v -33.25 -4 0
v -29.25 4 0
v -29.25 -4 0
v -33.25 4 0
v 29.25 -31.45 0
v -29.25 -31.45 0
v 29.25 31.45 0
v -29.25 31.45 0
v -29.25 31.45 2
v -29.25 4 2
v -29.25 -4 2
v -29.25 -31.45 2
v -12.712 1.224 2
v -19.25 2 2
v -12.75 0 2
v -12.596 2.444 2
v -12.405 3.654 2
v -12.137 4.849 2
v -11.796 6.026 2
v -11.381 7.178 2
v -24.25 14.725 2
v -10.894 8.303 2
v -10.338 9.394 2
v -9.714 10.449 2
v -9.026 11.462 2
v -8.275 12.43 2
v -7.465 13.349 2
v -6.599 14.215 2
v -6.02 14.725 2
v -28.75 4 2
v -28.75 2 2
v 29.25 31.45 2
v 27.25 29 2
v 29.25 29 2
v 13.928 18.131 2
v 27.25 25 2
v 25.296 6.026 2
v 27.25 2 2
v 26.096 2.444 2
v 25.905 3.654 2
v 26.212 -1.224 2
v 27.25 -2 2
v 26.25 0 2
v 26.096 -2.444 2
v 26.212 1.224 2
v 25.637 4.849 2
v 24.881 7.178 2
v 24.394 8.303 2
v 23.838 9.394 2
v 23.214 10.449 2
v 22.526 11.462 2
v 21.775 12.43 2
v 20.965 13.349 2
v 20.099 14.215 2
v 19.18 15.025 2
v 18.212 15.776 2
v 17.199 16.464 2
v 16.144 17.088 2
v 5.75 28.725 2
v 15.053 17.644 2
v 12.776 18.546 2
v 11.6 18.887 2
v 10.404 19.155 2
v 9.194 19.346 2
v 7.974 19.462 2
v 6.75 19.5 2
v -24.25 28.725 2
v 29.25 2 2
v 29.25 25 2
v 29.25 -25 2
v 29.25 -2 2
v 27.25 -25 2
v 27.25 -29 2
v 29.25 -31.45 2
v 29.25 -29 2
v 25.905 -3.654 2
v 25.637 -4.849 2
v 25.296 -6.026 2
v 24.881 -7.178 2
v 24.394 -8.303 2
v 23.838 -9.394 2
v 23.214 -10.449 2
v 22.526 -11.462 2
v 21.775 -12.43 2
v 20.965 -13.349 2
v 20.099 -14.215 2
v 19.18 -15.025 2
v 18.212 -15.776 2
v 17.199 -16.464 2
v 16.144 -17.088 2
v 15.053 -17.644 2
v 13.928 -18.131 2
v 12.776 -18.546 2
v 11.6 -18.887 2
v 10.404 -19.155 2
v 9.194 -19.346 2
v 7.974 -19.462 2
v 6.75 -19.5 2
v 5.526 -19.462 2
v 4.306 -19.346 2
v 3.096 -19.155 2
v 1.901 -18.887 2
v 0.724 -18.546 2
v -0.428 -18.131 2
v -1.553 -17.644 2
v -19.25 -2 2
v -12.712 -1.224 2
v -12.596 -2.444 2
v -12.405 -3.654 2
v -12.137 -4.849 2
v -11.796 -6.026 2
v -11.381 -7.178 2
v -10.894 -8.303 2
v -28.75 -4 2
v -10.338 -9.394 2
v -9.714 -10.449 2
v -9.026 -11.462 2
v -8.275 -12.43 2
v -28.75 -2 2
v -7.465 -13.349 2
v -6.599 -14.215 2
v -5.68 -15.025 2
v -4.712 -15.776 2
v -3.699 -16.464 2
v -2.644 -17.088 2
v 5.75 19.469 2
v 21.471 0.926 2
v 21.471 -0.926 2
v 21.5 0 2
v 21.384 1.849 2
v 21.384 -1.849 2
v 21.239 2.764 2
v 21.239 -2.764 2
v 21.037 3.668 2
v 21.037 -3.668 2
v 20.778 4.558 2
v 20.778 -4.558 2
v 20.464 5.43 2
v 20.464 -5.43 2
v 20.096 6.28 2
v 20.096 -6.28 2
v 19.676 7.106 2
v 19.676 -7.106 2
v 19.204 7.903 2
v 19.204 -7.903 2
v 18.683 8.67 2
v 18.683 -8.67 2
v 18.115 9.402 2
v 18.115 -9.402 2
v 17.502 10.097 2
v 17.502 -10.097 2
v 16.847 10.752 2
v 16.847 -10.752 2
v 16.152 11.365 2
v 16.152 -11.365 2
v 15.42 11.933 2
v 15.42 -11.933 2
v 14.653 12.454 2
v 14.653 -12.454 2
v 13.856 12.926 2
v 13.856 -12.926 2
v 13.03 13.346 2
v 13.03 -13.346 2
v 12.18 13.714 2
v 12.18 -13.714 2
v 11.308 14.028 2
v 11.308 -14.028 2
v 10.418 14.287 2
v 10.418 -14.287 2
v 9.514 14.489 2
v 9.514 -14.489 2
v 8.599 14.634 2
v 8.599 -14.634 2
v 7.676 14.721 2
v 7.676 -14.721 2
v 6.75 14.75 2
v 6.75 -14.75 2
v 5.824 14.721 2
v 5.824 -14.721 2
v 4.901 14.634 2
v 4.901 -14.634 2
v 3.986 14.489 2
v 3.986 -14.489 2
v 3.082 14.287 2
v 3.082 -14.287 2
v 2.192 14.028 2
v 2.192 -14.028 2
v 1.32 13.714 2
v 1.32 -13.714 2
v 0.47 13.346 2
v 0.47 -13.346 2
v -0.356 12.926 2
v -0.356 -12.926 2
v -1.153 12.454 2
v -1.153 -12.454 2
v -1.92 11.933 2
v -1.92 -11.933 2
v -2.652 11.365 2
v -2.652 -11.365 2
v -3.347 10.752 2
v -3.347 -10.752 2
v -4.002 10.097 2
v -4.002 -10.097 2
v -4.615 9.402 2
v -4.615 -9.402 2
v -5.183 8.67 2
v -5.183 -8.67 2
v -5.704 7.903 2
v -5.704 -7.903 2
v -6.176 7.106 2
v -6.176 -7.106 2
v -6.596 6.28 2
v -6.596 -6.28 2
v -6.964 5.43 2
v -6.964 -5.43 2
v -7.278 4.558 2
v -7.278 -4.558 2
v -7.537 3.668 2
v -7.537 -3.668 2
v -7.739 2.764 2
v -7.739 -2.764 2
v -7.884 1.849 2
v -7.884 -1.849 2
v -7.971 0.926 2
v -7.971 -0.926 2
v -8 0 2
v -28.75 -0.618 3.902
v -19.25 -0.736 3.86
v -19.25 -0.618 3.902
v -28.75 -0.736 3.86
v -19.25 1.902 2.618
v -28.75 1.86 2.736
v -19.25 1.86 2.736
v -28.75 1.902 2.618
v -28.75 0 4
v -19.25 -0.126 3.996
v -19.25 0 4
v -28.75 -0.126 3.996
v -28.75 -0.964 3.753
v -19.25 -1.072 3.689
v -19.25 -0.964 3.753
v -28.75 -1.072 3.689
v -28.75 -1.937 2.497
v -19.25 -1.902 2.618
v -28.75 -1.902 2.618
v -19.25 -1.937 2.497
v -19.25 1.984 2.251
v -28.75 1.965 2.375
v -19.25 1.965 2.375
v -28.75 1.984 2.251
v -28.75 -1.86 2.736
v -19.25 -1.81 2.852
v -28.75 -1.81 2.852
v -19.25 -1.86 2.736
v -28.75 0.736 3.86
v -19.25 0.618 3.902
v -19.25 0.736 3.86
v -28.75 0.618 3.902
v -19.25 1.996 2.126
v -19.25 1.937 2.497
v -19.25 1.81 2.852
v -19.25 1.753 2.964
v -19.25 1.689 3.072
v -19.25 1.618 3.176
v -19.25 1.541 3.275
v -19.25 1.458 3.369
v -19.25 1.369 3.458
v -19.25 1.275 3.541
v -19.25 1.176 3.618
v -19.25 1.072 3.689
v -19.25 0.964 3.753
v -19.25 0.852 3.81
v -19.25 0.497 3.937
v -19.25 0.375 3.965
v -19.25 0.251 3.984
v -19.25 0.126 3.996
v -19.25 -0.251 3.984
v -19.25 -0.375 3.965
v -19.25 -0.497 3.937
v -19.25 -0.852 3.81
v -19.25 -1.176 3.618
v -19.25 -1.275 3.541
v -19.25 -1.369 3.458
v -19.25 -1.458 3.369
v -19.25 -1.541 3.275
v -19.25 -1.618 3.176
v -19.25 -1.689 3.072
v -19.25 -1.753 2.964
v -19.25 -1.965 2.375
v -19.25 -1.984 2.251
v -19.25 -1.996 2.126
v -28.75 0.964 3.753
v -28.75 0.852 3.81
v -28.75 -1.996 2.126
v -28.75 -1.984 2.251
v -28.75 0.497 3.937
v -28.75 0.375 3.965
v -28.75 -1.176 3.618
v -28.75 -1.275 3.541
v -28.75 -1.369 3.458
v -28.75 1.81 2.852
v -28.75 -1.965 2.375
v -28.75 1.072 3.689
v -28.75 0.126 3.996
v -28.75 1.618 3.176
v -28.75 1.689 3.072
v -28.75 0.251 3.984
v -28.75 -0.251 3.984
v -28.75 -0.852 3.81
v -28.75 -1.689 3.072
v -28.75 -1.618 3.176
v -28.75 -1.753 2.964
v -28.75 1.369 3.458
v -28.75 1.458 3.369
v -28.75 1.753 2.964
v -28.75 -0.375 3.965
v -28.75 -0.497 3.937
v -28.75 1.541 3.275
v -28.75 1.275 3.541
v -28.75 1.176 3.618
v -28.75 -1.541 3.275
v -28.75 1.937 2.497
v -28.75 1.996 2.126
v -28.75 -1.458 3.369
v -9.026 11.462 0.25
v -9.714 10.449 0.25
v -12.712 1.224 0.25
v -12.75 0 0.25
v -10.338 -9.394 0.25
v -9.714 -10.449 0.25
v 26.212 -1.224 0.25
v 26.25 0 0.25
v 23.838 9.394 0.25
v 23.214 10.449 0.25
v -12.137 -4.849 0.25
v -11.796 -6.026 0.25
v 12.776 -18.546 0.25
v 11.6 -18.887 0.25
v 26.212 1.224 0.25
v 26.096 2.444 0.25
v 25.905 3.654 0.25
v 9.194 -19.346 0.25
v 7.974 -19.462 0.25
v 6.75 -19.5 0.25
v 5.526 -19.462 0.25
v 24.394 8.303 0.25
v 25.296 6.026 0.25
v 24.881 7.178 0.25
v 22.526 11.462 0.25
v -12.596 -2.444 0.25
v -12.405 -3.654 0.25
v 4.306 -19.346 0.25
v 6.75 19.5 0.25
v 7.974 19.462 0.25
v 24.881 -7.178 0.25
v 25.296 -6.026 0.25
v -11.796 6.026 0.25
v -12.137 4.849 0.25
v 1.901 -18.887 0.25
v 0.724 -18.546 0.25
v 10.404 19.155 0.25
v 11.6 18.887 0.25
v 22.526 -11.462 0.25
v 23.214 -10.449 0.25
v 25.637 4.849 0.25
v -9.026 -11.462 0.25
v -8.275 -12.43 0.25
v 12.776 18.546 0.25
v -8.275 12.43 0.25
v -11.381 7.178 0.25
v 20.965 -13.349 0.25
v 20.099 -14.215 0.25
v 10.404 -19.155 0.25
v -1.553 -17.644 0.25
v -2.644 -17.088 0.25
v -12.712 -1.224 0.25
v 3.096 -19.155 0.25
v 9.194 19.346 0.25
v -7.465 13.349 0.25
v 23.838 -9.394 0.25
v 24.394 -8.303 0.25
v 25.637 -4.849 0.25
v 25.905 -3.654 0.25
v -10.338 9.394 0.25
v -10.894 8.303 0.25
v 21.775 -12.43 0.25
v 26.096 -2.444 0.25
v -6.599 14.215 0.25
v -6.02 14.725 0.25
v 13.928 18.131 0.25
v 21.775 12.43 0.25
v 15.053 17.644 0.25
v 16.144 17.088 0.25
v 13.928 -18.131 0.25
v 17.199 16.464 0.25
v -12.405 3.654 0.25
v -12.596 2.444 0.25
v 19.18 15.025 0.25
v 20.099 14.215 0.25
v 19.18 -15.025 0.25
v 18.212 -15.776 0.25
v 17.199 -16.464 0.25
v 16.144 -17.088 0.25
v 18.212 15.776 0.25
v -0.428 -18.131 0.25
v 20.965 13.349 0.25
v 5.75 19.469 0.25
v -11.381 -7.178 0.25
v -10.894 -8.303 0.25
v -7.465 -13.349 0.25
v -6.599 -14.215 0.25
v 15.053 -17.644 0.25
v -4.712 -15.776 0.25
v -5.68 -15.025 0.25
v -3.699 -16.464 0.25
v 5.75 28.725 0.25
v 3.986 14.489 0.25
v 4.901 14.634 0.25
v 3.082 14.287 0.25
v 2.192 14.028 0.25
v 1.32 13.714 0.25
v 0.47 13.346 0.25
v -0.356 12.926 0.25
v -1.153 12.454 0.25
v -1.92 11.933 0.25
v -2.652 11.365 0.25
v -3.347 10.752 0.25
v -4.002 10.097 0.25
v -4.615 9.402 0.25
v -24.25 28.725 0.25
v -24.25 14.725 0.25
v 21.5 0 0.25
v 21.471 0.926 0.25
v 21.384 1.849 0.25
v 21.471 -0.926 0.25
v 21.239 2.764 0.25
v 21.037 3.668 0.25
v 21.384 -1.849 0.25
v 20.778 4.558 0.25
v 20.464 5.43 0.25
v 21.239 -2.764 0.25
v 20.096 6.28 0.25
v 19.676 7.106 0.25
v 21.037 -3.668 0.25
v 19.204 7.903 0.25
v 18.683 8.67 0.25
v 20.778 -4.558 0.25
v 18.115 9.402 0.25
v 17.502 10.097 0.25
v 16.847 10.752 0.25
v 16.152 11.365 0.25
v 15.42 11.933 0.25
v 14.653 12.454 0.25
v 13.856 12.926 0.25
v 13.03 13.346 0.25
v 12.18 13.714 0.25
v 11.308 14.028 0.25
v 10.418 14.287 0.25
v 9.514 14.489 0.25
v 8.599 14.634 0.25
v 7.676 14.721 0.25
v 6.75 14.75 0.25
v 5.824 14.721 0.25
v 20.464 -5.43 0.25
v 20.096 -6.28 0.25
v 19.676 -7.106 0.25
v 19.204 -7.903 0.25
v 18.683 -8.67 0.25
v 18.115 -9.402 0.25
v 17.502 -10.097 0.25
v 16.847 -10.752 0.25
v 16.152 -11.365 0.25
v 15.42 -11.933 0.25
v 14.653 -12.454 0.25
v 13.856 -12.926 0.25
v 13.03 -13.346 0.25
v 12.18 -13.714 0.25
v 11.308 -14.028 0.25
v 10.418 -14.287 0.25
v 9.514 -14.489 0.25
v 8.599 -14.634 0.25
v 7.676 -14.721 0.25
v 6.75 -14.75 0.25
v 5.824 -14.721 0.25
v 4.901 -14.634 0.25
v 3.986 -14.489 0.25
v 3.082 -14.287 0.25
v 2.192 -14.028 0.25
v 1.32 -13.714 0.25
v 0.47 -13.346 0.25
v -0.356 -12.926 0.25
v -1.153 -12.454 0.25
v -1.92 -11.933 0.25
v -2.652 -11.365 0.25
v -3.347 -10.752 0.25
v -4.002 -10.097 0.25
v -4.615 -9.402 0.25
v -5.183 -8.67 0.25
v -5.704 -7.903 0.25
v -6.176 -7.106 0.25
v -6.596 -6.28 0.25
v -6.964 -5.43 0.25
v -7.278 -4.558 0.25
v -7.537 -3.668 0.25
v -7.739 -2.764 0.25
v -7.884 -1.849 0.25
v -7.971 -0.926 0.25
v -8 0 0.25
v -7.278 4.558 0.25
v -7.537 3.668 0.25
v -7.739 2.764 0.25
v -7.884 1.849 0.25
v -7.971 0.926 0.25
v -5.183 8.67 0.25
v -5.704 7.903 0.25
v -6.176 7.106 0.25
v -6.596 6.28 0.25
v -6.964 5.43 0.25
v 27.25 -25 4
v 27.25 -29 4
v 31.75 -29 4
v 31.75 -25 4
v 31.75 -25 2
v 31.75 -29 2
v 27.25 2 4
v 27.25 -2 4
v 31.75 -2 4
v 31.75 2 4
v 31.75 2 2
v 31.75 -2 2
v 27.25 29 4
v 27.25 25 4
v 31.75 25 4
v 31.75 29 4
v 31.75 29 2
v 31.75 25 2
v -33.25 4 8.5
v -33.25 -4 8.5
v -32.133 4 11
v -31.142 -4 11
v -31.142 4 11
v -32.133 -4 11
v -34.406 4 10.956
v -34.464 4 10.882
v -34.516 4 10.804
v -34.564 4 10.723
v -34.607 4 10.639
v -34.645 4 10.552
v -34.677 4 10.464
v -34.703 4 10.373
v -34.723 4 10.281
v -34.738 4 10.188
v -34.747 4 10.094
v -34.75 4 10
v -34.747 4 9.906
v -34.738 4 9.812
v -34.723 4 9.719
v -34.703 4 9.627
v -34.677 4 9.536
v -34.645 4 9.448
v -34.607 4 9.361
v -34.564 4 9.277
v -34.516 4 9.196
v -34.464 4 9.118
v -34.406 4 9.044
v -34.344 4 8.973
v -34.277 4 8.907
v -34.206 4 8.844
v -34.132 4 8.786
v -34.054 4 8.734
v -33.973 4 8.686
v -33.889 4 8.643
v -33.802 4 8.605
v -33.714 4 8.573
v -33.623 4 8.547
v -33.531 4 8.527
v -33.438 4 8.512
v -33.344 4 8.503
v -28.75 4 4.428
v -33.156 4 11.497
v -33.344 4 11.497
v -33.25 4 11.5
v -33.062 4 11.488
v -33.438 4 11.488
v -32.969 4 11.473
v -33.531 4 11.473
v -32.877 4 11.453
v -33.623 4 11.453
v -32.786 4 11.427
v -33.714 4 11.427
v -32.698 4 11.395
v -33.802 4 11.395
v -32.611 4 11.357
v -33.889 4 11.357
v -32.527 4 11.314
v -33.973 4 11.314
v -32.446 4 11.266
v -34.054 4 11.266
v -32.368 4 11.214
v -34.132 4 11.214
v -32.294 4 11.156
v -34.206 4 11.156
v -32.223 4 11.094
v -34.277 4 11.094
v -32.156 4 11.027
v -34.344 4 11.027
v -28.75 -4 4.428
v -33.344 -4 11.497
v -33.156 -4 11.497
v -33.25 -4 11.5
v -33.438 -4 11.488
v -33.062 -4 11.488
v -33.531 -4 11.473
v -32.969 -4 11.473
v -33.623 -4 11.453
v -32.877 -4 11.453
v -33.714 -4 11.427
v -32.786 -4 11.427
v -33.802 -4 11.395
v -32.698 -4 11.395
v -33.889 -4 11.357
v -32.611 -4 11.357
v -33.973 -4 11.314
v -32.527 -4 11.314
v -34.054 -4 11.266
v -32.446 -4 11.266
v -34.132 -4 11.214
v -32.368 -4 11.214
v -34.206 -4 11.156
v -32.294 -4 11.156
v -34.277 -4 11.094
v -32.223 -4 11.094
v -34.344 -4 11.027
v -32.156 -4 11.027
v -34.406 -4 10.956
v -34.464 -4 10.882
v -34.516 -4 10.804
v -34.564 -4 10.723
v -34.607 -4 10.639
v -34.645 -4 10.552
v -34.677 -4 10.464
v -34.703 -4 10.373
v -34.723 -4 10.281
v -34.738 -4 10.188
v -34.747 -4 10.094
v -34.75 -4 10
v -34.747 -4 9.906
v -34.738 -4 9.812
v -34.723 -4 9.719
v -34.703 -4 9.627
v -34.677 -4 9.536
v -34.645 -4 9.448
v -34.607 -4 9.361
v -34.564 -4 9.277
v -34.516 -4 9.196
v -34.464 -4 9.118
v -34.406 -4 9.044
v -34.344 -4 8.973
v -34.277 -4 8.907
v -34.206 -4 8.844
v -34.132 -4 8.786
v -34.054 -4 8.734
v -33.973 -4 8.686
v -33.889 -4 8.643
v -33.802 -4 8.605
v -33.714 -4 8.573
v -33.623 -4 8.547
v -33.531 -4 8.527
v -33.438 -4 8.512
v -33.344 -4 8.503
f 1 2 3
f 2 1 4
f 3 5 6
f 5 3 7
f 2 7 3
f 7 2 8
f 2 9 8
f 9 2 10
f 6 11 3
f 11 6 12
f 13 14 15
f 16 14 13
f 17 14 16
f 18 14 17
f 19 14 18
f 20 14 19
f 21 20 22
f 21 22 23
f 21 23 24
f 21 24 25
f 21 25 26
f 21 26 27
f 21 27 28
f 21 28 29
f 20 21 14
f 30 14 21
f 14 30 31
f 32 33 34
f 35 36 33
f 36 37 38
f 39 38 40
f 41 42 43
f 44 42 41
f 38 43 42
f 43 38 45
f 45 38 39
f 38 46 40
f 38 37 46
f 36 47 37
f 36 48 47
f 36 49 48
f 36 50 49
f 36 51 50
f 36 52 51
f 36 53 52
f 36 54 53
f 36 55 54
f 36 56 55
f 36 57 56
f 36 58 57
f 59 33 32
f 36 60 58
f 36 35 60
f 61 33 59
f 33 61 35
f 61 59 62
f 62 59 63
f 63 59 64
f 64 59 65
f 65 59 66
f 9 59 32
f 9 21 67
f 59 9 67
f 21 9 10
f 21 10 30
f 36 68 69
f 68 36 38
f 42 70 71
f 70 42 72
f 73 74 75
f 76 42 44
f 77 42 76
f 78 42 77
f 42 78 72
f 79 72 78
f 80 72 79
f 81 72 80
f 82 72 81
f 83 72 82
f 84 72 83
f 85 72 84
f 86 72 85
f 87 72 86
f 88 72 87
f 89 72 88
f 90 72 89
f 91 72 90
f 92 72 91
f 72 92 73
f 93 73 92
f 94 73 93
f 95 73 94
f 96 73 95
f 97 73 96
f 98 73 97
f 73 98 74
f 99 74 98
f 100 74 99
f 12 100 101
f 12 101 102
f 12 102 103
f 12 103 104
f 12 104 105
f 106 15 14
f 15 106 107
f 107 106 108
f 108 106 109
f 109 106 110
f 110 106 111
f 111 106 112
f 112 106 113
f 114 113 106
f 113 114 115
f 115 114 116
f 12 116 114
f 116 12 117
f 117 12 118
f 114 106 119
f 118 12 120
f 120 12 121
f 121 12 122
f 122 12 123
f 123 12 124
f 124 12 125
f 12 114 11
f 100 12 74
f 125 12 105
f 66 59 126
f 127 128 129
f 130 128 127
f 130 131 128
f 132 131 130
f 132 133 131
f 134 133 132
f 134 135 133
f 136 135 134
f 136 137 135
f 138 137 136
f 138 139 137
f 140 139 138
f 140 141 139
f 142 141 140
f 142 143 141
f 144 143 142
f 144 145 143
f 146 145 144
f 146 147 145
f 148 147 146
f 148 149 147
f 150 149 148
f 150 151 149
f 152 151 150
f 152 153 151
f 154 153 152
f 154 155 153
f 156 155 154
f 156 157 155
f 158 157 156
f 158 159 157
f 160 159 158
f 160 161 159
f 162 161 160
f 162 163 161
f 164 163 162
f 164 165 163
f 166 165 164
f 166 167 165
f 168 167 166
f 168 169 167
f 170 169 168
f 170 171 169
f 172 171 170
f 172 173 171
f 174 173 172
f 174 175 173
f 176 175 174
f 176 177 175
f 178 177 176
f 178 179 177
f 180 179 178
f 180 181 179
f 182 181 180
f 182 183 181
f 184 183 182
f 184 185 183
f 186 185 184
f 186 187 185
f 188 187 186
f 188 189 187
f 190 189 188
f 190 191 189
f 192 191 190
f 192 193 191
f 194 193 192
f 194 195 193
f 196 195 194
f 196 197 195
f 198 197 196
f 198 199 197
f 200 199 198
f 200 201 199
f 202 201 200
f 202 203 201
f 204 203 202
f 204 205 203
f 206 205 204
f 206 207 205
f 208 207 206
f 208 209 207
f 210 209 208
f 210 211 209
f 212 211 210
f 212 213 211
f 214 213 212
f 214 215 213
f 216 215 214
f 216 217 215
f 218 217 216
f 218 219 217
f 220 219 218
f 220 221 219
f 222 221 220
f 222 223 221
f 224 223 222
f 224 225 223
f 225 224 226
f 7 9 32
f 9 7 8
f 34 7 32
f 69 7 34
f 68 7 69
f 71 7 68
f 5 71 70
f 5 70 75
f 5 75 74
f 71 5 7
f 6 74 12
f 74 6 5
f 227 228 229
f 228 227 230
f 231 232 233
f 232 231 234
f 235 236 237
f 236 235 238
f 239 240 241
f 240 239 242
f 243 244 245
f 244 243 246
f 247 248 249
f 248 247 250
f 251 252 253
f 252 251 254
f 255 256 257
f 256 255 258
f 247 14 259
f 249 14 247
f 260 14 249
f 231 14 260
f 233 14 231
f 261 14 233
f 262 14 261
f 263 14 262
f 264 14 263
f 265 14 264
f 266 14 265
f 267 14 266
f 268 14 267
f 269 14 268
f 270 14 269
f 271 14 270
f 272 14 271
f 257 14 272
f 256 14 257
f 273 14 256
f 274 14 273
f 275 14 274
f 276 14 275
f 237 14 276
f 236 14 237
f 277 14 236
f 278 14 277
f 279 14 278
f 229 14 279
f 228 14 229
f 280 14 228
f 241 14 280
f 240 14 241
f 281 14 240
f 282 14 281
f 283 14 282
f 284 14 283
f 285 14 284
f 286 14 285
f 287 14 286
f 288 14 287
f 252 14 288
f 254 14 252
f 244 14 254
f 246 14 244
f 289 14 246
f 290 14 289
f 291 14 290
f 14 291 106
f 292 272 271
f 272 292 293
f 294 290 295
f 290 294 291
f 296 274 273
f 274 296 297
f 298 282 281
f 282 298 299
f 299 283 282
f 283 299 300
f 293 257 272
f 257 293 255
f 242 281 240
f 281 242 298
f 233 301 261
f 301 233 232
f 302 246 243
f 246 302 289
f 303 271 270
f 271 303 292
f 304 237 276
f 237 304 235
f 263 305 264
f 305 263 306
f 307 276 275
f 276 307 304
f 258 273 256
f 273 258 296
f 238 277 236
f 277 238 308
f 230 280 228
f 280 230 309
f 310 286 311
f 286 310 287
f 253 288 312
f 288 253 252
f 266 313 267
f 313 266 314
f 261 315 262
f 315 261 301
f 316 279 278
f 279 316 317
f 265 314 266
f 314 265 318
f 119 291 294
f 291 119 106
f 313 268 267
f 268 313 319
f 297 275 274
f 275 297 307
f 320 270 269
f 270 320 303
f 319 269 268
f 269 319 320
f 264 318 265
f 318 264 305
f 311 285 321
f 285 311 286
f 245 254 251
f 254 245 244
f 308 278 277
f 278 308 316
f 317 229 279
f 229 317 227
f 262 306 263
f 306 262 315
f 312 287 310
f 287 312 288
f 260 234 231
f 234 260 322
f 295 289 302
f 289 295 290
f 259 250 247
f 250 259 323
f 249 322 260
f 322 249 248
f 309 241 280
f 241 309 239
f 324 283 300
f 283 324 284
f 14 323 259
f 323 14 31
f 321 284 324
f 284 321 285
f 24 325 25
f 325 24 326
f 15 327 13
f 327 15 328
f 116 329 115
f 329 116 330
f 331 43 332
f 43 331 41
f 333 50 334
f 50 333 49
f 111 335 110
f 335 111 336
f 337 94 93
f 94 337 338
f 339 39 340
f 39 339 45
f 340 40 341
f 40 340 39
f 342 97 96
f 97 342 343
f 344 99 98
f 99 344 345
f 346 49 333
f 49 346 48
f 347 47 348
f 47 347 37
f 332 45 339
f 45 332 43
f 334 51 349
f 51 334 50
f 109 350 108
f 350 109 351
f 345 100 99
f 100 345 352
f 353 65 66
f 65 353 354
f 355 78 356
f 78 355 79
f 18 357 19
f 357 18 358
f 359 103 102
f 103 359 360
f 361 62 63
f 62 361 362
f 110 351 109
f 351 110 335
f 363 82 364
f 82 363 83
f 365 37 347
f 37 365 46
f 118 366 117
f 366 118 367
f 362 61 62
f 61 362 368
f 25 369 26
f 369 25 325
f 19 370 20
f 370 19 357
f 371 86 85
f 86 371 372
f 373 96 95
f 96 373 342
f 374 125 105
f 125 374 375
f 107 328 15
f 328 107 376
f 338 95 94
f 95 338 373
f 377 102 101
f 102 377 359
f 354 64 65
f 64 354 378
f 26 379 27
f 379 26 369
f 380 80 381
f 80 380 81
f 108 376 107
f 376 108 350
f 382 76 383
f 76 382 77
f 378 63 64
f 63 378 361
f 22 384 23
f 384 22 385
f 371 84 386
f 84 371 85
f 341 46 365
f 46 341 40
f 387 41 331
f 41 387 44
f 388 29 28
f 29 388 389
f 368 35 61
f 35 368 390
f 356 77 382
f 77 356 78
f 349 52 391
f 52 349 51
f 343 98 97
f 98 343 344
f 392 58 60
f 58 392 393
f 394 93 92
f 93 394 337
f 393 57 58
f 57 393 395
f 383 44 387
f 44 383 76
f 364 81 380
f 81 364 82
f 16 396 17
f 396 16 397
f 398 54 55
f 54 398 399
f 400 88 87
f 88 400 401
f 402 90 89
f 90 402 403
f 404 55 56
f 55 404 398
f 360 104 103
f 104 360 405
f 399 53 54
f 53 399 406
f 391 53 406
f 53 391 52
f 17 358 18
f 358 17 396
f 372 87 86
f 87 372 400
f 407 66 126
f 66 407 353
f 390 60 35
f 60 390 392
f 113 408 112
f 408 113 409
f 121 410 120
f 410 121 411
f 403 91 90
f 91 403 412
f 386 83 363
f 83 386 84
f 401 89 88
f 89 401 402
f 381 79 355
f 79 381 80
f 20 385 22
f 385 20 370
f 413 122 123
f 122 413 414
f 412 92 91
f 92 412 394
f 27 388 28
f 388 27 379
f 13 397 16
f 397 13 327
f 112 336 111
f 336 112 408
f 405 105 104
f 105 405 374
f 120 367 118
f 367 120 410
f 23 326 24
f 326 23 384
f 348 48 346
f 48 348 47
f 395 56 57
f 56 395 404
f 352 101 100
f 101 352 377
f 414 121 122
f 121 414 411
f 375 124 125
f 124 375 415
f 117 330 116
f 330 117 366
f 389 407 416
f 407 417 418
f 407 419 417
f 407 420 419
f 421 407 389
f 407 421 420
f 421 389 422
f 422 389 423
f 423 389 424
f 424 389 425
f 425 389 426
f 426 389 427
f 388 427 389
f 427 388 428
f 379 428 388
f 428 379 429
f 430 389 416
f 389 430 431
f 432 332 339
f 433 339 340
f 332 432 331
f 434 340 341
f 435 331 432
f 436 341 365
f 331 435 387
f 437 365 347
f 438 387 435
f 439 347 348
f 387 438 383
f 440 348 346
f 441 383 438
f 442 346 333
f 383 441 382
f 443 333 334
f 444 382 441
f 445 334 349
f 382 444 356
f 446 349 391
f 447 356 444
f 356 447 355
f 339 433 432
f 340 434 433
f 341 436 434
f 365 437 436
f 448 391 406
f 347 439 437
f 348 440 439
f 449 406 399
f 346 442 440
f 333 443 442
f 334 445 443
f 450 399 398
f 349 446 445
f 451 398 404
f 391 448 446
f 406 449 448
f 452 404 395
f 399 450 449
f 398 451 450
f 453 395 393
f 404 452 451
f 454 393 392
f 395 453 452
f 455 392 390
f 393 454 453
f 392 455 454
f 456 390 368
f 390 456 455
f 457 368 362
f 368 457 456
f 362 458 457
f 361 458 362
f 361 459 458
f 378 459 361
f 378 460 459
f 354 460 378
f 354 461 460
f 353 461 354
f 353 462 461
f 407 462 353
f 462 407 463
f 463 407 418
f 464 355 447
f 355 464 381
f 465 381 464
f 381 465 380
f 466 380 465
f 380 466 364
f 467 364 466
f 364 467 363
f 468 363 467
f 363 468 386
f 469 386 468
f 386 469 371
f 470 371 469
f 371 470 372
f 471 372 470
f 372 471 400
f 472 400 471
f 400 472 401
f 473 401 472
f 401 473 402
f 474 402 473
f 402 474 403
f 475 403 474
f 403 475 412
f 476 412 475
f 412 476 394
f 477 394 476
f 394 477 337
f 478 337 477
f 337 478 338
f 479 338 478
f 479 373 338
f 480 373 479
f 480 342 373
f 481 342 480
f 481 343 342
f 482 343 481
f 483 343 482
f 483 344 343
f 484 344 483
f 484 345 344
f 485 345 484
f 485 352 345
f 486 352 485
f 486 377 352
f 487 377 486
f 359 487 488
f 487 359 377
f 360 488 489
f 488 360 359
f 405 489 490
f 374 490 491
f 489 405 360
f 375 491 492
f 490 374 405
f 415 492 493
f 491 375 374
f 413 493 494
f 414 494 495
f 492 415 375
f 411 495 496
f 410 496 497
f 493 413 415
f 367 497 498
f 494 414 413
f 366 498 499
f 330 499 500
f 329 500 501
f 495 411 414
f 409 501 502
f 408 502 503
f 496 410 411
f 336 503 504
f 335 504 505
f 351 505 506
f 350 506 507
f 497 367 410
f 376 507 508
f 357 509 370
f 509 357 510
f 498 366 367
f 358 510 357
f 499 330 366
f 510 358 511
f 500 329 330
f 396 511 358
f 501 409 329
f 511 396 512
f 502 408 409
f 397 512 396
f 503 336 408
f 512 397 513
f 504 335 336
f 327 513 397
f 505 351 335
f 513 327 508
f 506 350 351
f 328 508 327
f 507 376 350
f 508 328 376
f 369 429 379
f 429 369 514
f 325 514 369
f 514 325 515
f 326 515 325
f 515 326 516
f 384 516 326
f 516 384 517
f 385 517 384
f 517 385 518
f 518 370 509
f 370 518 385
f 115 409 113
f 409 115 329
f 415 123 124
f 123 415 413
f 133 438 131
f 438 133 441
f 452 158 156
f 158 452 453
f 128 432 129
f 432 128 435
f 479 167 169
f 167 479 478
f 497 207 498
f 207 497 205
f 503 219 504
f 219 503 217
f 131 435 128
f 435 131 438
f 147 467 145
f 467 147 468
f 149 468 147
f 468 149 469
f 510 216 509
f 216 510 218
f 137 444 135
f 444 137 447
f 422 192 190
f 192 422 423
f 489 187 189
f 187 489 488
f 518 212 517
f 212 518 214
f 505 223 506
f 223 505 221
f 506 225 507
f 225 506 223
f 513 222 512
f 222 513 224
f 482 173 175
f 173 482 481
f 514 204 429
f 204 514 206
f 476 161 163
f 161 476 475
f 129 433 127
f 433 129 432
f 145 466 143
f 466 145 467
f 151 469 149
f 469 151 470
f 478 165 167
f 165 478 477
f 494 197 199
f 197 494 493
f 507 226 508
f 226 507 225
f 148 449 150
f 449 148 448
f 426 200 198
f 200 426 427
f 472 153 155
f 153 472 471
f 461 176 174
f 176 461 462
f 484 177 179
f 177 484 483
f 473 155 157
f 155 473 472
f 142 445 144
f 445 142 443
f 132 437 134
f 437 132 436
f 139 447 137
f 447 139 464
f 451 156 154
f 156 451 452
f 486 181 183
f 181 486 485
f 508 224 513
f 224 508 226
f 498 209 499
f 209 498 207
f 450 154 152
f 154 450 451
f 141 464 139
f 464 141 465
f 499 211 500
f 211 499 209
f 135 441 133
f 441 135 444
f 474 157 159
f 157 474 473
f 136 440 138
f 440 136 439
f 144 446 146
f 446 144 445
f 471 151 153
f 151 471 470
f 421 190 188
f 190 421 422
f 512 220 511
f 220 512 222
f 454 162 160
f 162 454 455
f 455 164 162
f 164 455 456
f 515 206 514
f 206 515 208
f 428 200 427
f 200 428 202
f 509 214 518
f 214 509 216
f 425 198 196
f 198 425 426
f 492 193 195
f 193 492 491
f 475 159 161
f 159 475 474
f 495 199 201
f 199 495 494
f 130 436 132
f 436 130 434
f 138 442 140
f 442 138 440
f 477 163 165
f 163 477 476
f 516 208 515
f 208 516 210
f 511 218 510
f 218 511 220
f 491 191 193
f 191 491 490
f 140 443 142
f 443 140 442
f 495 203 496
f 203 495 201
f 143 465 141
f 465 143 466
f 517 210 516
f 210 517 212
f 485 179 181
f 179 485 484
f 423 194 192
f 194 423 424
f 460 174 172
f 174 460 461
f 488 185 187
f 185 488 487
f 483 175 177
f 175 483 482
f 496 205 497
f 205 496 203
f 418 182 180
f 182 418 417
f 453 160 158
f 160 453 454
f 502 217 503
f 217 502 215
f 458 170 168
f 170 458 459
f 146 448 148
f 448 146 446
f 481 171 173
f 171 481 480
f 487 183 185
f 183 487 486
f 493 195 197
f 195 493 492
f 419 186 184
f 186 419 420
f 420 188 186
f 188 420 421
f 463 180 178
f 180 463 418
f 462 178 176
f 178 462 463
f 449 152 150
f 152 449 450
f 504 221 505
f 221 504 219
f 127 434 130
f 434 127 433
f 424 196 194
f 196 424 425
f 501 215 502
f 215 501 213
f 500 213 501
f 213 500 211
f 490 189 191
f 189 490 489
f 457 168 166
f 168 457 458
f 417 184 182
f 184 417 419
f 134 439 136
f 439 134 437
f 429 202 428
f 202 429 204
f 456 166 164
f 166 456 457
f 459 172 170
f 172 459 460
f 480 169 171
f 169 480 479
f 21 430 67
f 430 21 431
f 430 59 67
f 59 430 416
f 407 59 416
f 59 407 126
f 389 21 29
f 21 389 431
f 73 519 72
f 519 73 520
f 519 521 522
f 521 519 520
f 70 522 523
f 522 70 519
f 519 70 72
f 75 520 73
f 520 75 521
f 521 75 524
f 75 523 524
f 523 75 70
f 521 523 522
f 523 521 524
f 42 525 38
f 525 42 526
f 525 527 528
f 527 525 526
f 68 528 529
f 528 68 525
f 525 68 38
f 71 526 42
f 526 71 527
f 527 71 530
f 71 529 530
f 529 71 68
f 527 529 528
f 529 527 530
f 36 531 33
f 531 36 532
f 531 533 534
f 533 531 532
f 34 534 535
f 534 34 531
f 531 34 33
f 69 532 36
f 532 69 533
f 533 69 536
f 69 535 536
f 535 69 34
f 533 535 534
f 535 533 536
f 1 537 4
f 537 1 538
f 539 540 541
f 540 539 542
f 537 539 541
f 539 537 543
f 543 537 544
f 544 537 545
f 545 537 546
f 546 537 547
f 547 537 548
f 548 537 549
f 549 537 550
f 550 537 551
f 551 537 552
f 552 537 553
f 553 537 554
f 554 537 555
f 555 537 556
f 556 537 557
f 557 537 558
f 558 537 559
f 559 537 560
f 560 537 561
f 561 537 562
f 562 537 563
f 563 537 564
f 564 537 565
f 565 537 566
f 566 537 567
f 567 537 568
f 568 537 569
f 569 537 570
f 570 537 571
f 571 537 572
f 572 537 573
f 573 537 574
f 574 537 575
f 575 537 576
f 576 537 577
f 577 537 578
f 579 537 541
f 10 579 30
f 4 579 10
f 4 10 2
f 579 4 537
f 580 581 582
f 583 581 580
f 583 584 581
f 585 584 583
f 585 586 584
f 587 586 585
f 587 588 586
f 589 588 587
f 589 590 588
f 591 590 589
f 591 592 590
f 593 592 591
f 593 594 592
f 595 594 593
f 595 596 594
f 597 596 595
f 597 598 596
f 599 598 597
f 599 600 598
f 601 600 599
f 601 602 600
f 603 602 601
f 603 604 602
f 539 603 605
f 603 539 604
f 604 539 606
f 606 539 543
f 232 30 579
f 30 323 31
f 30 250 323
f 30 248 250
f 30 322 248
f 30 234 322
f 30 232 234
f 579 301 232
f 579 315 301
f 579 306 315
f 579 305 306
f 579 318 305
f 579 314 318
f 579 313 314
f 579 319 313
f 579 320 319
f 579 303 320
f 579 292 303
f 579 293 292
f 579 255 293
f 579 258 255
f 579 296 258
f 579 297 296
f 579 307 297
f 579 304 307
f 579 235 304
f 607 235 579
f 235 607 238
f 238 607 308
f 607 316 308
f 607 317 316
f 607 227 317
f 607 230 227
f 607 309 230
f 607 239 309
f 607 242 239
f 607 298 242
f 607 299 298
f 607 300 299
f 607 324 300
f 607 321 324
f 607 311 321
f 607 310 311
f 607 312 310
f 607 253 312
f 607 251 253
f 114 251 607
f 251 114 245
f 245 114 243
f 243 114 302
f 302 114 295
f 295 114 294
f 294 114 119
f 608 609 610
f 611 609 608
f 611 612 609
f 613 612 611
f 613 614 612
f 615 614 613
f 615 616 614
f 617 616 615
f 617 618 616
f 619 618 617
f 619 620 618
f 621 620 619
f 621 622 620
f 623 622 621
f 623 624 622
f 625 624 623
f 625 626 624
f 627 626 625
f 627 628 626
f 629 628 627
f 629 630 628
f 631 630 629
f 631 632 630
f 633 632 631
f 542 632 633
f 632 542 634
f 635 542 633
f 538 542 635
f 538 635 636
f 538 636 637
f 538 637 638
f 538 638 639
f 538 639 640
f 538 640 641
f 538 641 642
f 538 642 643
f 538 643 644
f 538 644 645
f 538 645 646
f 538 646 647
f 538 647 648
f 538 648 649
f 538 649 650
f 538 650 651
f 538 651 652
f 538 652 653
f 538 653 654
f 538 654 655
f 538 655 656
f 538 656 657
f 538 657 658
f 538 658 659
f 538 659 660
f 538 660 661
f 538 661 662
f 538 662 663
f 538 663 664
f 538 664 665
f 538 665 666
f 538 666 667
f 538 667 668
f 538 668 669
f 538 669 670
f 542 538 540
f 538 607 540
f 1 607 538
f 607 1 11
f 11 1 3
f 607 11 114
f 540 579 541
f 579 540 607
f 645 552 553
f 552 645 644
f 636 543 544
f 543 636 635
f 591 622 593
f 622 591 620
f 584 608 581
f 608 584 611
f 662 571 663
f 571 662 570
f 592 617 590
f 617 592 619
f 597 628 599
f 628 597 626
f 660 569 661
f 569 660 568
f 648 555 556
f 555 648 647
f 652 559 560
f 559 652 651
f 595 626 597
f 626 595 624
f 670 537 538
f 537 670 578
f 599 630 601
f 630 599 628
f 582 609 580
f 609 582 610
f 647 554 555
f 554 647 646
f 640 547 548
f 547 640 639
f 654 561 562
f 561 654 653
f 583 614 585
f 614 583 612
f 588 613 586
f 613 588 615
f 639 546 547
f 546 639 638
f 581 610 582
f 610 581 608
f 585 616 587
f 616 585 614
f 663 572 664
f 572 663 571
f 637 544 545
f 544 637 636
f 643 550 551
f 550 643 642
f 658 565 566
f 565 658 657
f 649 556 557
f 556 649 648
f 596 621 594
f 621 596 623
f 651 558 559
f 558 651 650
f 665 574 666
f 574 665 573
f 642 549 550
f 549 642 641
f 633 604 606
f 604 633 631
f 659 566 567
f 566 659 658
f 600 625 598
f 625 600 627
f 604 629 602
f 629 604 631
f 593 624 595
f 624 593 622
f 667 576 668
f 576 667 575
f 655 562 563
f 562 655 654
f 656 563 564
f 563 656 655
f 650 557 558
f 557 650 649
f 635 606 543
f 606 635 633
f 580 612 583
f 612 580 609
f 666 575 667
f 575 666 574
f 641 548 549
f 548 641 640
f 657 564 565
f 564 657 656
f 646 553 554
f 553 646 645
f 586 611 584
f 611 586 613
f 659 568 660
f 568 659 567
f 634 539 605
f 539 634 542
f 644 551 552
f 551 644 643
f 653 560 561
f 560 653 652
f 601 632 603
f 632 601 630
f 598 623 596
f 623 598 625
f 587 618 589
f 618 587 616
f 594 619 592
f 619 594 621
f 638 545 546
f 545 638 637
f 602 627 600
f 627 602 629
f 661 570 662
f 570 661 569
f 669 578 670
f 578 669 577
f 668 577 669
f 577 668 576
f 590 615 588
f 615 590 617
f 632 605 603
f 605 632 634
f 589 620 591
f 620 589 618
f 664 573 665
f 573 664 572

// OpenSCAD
$fn=100;
h=2;
coil_h=1.75;
coil_d1=29.5;
coil_d2=39;
b=58.5;
l=62.9;
difference()
{
    union()
    {
        linear_extrude(h) square([b,l],true);
        translate([-b/2,0,2]) rotate([0,90,0]) linear_extrude(10) circle(d=4);
    }
    union()
    {
        translate([(b-coil_d2)/2-3,0,h-coil_h]) difference()
        {
          linear_extrude(coil_h+1) circle(d=coil_d2);
          linear_extrude(coil_h+1) circle(d=coil_d1);
        }
        translate([-b/2+20,l/4+7-1,h-coil_h]) linear_extrude(coil_h+1) square([30,14],true);
    }
}


translate([b/2-1,-27,0]) union()
{
    linear_extrude(4) square([2,4],true);
    translate([2,0,2]) linear_extrude(2) square([2+1,4],true);
}
translate([b/2-1,0,0]) union()
{
    linear_extrude(4) square([2,4],true);
    translate([2,0,2]) linear_extrude(2) square([2+1,4],true);
}
translate([b/2-1,+27,0]) union()
{
    linear_extrude(4) square([2,4],true);
    translate([2,0,2]) linear_extrude(2) square([2+1,4],true);
}

translate([-b/2-1-1.5/2,0,0]) union()
{
    difference()
    {
      linear_extrude(9+2) square([3+1.5,8],true);
      translate([4.8,0,4]) rotate([0,-20,0]) linear_extrude(9+2) square([3+1.5,8],true);
    }
    translate([-1.5-1.5/2,4,9+1]) rotate([90,0,0]) linear_extrude(8) circle(d=3);
}
